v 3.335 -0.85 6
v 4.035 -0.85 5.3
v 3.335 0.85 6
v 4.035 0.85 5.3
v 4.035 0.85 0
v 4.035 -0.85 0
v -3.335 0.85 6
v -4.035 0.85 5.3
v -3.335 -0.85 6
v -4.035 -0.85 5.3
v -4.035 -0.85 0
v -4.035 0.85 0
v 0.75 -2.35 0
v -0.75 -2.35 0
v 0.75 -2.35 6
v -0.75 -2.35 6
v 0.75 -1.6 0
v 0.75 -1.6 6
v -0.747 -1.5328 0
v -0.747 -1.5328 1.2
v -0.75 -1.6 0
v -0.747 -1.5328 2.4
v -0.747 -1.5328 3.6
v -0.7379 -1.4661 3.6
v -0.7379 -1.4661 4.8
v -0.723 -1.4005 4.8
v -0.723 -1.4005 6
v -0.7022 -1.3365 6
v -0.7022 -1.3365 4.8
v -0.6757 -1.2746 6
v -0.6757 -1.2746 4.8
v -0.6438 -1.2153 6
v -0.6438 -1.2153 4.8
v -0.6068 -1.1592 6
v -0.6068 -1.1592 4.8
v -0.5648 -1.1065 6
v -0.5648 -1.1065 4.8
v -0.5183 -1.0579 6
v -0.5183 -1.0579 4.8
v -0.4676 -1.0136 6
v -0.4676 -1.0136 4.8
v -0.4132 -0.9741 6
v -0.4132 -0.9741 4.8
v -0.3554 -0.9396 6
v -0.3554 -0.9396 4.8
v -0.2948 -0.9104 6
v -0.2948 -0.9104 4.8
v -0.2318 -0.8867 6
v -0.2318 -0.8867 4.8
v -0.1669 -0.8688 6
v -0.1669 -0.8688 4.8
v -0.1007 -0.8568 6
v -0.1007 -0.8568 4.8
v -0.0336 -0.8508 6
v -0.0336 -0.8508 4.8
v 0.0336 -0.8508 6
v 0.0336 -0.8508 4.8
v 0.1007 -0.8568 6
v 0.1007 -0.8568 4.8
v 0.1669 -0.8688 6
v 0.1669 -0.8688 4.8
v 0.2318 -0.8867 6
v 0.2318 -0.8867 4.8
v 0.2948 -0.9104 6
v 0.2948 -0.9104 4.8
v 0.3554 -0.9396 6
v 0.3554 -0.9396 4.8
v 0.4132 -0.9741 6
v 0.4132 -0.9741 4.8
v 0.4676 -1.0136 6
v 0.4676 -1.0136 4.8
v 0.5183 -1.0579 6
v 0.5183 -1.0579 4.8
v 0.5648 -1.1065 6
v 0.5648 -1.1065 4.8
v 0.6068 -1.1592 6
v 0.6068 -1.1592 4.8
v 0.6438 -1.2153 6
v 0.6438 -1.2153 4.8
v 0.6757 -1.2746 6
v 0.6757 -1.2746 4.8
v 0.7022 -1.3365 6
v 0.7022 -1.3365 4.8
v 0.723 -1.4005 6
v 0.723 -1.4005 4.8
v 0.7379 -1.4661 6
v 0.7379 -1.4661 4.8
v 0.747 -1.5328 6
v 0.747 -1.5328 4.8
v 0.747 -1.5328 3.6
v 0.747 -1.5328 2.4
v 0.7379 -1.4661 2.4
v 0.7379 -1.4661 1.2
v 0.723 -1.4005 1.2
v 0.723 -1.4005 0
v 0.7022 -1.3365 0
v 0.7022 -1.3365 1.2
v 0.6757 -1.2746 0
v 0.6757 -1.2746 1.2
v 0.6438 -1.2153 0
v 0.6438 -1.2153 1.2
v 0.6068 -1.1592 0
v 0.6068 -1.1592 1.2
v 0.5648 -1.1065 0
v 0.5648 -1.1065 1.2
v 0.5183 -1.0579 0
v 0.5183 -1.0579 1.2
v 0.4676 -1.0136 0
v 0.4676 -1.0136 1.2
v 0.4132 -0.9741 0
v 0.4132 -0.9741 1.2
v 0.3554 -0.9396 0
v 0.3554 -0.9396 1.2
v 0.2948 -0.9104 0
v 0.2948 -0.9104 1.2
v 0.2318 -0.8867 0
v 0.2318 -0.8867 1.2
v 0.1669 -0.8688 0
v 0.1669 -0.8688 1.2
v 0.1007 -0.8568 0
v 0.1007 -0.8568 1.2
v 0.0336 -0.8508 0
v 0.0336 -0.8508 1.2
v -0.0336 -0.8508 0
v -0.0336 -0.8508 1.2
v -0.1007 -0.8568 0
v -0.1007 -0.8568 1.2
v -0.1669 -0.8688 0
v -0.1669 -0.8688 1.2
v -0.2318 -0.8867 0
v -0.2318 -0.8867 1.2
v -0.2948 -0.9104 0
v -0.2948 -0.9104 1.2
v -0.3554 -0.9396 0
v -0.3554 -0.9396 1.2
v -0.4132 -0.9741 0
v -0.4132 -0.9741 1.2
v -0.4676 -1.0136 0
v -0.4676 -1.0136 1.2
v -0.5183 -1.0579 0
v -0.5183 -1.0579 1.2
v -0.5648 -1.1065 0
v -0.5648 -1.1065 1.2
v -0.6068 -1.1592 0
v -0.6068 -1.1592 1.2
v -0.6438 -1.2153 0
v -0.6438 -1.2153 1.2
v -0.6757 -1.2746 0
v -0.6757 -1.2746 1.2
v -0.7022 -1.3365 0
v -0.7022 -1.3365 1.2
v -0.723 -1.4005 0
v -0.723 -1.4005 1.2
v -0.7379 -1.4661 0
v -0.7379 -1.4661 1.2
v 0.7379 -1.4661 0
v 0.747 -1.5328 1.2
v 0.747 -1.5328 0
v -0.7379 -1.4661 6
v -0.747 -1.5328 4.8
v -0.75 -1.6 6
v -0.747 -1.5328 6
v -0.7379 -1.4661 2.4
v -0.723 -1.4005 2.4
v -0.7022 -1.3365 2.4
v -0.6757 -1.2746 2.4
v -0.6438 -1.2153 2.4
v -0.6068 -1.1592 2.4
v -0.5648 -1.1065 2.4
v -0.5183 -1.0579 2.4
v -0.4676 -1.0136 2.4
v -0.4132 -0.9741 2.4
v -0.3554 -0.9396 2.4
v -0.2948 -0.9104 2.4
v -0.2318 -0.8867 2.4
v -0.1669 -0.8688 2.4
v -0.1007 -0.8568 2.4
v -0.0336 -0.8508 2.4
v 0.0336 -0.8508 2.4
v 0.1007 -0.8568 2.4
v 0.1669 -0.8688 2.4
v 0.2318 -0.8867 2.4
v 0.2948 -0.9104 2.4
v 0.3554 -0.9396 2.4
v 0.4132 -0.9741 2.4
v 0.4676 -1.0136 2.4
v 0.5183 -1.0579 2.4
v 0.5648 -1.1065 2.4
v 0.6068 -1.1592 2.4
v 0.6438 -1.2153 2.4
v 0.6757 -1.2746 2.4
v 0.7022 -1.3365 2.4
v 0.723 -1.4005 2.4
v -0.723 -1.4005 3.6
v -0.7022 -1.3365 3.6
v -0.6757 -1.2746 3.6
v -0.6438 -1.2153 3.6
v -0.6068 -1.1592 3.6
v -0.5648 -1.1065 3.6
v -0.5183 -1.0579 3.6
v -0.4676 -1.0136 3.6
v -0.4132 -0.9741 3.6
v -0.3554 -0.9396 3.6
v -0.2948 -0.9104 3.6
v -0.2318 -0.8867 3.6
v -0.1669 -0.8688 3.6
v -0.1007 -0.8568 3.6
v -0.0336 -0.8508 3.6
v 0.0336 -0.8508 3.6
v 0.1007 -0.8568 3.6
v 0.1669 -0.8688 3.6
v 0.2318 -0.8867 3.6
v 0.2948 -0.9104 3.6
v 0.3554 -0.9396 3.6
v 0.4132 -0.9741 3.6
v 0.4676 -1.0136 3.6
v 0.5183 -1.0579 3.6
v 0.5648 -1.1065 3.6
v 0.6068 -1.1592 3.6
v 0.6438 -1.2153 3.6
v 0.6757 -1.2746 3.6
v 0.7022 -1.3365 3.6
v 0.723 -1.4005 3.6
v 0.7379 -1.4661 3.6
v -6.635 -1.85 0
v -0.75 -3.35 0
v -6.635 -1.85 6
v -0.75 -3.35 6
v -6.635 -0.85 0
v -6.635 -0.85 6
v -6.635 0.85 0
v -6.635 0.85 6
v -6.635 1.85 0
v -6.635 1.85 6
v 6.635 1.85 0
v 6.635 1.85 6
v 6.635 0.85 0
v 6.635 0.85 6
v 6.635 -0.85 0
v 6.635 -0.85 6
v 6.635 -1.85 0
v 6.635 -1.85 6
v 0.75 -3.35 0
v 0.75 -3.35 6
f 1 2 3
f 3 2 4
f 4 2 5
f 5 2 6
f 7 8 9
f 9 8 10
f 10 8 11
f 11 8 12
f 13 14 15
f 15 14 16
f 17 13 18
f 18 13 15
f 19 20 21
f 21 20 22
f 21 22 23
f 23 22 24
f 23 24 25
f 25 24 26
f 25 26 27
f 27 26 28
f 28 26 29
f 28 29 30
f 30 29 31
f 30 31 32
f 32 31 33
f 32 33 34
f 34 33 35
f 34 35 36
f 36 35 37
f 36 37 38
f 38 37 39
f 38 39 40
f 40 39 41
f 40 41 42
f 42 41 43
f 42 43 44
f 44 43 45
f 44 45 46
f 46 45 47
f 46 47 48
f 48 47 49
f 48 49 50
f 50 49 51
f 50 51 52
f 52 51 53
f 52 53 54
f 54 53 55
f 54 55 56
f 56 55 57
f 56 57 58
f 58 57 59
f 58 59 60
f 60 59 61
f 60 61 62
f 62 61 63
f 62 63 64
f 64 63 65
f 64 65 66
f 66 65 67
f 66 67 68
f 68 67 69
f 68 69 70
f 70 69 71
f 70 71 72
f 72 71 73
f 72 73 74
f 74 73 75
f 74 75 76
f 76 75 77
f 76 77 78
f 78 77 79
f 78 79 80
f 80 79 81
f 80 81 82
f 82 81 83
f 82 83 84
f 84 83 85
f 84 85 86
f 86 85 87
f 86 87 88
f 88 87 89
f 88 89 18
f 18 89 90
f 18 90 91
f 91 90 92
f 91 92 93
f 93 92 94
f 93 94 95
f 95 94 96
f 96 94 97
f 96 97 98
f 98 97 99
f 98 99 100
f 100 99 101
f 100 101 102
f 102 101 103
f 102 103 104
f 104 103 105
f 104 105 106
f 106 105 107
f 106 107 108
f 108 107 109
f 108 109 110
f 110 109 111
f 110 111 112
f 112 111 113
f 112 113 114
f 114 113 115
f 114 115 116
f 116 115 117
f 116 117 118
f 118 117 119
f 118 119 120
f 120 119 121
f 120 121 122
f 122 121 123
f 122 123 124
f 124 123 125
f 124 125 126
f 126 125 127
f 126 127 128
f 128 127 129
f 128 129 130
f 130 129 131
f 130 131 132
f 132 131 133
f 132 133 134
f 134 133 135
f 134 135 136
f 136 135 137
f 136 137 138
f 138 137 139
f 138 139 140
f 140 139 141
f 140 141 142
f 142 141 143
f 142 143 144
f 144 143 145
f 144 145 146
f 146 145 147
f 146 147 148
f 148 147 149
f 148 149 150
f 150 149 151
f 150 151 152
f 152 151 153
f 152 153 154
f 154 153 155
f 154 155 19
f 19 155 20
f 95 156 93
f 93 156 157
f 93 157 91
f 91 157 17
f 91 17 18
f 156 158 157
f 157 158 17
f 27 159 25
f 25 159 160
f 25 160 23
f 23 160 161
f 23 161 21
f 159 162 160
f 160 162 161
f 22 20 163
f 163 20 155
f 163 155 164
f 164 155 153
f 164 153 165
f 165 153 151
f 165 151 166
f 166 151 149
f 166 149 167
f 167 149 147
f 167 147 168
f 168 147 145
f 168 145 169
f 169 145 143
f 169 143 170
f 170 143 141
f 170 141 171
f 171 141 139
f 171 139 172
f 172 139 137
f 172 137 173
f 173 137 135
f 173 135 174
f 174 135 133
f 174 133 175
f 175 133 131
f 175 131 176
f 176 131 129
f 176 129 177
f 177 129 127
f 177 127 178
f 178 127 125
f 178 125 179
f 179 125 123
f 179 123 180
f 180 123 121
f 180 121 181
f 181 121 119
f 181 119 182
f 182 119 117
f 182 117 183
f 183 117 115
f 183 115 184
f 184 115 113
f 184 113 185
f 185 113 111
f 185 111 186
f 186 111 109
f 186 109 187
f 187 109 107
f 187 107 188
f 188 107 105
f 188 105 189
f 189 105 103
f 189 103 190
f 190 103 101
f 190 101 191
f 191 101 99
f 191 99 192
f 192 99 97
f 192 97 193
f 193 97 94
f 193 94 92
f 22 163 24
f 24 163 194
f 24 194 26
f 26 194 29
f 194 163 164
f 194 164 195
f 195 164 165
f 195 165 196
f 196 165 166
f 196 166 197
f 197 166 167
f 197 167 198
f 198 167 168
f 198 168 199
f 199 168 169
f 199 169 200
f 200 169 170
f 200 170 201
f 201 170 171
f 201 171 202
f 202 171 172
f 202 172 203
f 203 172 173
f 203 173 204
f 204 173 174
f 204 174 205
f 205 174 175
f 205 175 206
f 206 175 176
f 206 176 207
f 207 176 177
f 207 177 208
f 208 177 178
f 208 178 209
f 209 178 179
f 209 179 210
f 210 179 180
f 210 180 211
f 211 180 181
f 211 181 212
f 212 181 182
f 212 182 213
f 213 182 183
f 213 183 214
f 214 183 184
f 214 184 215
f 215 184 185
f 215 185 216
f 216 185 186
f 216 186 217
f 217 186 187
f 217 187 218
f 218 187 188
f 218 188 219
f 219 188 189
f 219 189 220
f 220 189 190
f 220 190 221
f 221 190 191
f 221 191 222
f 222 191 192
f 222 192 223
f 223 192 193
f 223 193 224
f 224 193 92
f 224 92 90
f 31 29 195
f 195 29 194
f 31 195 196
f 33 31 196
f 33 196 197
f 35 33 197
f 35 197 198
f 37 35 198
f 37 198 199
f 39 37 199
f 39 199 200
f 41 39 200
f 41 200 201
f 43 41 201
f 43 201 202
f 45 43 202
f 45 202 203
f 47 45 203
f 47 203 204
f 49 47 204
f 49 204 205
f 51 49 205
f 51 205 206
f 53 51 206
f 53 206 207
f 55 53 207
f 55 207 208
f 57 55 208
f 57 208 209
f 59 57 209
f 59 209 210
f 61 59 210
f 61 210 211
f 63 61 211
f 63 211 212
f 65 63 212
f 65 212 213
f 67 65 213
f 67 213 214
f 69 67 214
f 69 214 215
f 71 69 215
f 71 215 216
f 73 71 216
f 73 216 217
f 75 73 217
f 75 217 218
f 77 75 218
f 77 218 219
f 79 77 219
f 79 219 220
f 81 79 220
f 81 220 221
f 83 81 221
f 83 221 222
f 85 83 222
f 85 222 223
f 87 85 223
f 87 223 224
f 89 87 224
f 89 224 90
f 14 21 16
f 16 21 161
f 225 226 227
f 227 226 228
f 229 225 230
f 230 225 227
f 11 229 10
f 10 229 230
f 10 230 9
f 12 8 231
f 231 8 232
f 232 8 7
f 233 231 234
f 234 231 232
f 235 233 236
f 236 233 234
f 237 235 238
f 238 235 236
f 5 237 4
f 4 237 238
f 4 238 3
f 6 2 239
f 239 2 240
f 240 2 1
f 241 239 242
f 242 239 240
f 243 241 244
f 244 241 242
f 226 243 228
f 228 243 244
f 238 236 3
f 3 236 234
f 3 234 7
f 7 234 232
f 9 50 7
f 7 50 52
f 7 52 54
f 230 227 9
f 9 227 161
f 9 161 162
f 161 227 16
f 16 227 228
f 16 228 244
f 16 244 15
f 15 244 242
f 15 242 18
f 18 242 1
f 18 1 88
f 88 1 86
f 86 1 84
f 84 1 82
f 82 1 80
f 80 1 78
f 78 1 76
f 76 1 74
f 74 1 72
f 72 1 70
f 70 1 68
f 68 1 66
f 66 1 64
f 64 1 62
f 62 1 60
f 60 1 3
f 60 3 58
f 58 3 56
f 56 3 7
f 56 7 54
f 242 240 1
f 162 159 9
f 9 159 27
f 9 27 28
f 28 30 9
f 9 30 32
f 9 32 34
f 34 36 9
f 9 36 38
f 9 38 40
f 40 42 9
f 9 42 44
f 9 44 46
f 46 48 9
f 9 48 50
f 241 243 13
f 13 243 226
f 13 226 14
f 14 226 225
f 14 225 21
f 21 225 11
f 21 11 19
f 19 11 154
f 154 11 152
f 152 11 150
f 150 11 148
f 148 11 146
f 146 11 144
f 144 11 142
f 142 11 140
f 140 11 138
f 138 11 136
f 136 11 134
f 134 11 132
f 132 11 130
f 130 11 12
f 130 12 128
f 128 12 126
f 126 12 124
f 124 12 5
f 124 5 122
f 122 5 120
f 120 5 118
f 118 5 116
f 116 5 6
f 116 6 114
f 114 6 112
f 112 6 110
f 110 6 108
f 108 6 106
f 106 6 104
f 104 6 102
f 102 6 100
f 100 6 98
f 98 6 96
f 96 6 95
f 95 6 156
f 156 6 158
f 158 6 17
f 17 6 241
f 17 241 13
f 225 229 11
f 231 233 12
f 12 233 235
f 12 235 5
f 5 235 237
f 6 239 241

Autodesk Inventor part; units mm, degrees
ref_plane "YZ Plane" through (0, 0, 0) normal (1, 0, 0) x (0, 1, 0)
ref_plane "XZ Plane" through (0, 0, 0) normal (0, 1, 0) x (-1, 0, 0)
ref_plane "XY Plane" through (0, 0, 0) normal (0, 0, 1) x (1, 0, 0)
sketch "Sketch1" plane through (0, 0, 0) normal (0, 0, 1) x (1, 0, 0)
  line L0 (-6.635, 1.85) -> (6.635, 1.85)
  line L1 (6.635, 1.85) -> (6.635, -1.85)
  line L2 (6.635, -1.85) -> (0.7071, -1.85)
  line L3 (-6.635, -1.85) -> (-6.635, 1.85)
  line L4 (-6.635, 1.85) -> (6.635, -1.85) construction
  line L5 (6.635, 1.85) -> (-6.635, -1.85) construction
  line L6 (-6.635, 0.85) -> (-4.035, 0.85)
  line L7 (-4.035, 0.85) -> (-4.035, -0.85)
  line L8 (-4.035, -0.85) -> (-6.635, -0.85)
  line L9 (-6.635, -0.85) -> (-6.635, 0.85)
  line L10 (6.635, 0.85) -> (4.035, 0.85)
  line L11 (4.035, 0.85) -> (4.035, -0.85)
  line L12 (4.035, -0.85) -> (6.635, -0.85)
  line L13 (6.635, -0.85) -> (6.635, 0.85)
  line L14 (-4.035, 0) -> (-6.635, 0) construction
  line L15 (6.635, 0) -> (4.035, 0) construction
  circle A0 centre (0, -1.6) radius 0.75
  line L16 (-0.75, -2.35) -> (0.75, -2.35)
  line L17 (0.75, -2.35) -> (0.75, -1.85)
  line L18 (-0.75, -2.35) -> (-0.75, -1.85)
  line L19 (-0.7071, -1.85) -> (-6.635, -1.85)
  line L20 (0.7071, -1.85) -> (-0.7071, -1.85)
  line L21 (-6.635, -1.85) -> (-0.75, -3.35)
  line L22 (-0.75, -3.35) -> (0.75, -3.35)
  line L23 (0.75, -3.35) -> (6.635, -1.85)
  line L24 (-0.75, -1.85) -> (-0.75, -1.6)
  line L25 (0.75, -1.85) -> (0.75, -1.6)
  point P0 (0, 0)
  point P1 (0, 0)
  point P2 (0, 0)
  dimension "d0" = 2.6
  dimension "d1" = 2.6
  dimension "d2" = 13.27
  dimension "d3" = 1.7
  dimension "d4" = 1
  dimension "d7" = 1.5
  dimension "d8" = 1
extrude "Extrusion2" add sketch "Sketch1" along normal blind 6 contours L0 L1 L10 L11 L12 L2 L25 A0 L24 L19 L3 L8 L7 L6 | L19 L18 L16 L17 L2 L23 L22 L21
chamfer "Chamfer1" distance 0.7 angle 45 2 edges at (-4.035, 0, 6) (4.035, 0, 6)
equation "\"d1\" = d0"
properties part number "glass_holder"
